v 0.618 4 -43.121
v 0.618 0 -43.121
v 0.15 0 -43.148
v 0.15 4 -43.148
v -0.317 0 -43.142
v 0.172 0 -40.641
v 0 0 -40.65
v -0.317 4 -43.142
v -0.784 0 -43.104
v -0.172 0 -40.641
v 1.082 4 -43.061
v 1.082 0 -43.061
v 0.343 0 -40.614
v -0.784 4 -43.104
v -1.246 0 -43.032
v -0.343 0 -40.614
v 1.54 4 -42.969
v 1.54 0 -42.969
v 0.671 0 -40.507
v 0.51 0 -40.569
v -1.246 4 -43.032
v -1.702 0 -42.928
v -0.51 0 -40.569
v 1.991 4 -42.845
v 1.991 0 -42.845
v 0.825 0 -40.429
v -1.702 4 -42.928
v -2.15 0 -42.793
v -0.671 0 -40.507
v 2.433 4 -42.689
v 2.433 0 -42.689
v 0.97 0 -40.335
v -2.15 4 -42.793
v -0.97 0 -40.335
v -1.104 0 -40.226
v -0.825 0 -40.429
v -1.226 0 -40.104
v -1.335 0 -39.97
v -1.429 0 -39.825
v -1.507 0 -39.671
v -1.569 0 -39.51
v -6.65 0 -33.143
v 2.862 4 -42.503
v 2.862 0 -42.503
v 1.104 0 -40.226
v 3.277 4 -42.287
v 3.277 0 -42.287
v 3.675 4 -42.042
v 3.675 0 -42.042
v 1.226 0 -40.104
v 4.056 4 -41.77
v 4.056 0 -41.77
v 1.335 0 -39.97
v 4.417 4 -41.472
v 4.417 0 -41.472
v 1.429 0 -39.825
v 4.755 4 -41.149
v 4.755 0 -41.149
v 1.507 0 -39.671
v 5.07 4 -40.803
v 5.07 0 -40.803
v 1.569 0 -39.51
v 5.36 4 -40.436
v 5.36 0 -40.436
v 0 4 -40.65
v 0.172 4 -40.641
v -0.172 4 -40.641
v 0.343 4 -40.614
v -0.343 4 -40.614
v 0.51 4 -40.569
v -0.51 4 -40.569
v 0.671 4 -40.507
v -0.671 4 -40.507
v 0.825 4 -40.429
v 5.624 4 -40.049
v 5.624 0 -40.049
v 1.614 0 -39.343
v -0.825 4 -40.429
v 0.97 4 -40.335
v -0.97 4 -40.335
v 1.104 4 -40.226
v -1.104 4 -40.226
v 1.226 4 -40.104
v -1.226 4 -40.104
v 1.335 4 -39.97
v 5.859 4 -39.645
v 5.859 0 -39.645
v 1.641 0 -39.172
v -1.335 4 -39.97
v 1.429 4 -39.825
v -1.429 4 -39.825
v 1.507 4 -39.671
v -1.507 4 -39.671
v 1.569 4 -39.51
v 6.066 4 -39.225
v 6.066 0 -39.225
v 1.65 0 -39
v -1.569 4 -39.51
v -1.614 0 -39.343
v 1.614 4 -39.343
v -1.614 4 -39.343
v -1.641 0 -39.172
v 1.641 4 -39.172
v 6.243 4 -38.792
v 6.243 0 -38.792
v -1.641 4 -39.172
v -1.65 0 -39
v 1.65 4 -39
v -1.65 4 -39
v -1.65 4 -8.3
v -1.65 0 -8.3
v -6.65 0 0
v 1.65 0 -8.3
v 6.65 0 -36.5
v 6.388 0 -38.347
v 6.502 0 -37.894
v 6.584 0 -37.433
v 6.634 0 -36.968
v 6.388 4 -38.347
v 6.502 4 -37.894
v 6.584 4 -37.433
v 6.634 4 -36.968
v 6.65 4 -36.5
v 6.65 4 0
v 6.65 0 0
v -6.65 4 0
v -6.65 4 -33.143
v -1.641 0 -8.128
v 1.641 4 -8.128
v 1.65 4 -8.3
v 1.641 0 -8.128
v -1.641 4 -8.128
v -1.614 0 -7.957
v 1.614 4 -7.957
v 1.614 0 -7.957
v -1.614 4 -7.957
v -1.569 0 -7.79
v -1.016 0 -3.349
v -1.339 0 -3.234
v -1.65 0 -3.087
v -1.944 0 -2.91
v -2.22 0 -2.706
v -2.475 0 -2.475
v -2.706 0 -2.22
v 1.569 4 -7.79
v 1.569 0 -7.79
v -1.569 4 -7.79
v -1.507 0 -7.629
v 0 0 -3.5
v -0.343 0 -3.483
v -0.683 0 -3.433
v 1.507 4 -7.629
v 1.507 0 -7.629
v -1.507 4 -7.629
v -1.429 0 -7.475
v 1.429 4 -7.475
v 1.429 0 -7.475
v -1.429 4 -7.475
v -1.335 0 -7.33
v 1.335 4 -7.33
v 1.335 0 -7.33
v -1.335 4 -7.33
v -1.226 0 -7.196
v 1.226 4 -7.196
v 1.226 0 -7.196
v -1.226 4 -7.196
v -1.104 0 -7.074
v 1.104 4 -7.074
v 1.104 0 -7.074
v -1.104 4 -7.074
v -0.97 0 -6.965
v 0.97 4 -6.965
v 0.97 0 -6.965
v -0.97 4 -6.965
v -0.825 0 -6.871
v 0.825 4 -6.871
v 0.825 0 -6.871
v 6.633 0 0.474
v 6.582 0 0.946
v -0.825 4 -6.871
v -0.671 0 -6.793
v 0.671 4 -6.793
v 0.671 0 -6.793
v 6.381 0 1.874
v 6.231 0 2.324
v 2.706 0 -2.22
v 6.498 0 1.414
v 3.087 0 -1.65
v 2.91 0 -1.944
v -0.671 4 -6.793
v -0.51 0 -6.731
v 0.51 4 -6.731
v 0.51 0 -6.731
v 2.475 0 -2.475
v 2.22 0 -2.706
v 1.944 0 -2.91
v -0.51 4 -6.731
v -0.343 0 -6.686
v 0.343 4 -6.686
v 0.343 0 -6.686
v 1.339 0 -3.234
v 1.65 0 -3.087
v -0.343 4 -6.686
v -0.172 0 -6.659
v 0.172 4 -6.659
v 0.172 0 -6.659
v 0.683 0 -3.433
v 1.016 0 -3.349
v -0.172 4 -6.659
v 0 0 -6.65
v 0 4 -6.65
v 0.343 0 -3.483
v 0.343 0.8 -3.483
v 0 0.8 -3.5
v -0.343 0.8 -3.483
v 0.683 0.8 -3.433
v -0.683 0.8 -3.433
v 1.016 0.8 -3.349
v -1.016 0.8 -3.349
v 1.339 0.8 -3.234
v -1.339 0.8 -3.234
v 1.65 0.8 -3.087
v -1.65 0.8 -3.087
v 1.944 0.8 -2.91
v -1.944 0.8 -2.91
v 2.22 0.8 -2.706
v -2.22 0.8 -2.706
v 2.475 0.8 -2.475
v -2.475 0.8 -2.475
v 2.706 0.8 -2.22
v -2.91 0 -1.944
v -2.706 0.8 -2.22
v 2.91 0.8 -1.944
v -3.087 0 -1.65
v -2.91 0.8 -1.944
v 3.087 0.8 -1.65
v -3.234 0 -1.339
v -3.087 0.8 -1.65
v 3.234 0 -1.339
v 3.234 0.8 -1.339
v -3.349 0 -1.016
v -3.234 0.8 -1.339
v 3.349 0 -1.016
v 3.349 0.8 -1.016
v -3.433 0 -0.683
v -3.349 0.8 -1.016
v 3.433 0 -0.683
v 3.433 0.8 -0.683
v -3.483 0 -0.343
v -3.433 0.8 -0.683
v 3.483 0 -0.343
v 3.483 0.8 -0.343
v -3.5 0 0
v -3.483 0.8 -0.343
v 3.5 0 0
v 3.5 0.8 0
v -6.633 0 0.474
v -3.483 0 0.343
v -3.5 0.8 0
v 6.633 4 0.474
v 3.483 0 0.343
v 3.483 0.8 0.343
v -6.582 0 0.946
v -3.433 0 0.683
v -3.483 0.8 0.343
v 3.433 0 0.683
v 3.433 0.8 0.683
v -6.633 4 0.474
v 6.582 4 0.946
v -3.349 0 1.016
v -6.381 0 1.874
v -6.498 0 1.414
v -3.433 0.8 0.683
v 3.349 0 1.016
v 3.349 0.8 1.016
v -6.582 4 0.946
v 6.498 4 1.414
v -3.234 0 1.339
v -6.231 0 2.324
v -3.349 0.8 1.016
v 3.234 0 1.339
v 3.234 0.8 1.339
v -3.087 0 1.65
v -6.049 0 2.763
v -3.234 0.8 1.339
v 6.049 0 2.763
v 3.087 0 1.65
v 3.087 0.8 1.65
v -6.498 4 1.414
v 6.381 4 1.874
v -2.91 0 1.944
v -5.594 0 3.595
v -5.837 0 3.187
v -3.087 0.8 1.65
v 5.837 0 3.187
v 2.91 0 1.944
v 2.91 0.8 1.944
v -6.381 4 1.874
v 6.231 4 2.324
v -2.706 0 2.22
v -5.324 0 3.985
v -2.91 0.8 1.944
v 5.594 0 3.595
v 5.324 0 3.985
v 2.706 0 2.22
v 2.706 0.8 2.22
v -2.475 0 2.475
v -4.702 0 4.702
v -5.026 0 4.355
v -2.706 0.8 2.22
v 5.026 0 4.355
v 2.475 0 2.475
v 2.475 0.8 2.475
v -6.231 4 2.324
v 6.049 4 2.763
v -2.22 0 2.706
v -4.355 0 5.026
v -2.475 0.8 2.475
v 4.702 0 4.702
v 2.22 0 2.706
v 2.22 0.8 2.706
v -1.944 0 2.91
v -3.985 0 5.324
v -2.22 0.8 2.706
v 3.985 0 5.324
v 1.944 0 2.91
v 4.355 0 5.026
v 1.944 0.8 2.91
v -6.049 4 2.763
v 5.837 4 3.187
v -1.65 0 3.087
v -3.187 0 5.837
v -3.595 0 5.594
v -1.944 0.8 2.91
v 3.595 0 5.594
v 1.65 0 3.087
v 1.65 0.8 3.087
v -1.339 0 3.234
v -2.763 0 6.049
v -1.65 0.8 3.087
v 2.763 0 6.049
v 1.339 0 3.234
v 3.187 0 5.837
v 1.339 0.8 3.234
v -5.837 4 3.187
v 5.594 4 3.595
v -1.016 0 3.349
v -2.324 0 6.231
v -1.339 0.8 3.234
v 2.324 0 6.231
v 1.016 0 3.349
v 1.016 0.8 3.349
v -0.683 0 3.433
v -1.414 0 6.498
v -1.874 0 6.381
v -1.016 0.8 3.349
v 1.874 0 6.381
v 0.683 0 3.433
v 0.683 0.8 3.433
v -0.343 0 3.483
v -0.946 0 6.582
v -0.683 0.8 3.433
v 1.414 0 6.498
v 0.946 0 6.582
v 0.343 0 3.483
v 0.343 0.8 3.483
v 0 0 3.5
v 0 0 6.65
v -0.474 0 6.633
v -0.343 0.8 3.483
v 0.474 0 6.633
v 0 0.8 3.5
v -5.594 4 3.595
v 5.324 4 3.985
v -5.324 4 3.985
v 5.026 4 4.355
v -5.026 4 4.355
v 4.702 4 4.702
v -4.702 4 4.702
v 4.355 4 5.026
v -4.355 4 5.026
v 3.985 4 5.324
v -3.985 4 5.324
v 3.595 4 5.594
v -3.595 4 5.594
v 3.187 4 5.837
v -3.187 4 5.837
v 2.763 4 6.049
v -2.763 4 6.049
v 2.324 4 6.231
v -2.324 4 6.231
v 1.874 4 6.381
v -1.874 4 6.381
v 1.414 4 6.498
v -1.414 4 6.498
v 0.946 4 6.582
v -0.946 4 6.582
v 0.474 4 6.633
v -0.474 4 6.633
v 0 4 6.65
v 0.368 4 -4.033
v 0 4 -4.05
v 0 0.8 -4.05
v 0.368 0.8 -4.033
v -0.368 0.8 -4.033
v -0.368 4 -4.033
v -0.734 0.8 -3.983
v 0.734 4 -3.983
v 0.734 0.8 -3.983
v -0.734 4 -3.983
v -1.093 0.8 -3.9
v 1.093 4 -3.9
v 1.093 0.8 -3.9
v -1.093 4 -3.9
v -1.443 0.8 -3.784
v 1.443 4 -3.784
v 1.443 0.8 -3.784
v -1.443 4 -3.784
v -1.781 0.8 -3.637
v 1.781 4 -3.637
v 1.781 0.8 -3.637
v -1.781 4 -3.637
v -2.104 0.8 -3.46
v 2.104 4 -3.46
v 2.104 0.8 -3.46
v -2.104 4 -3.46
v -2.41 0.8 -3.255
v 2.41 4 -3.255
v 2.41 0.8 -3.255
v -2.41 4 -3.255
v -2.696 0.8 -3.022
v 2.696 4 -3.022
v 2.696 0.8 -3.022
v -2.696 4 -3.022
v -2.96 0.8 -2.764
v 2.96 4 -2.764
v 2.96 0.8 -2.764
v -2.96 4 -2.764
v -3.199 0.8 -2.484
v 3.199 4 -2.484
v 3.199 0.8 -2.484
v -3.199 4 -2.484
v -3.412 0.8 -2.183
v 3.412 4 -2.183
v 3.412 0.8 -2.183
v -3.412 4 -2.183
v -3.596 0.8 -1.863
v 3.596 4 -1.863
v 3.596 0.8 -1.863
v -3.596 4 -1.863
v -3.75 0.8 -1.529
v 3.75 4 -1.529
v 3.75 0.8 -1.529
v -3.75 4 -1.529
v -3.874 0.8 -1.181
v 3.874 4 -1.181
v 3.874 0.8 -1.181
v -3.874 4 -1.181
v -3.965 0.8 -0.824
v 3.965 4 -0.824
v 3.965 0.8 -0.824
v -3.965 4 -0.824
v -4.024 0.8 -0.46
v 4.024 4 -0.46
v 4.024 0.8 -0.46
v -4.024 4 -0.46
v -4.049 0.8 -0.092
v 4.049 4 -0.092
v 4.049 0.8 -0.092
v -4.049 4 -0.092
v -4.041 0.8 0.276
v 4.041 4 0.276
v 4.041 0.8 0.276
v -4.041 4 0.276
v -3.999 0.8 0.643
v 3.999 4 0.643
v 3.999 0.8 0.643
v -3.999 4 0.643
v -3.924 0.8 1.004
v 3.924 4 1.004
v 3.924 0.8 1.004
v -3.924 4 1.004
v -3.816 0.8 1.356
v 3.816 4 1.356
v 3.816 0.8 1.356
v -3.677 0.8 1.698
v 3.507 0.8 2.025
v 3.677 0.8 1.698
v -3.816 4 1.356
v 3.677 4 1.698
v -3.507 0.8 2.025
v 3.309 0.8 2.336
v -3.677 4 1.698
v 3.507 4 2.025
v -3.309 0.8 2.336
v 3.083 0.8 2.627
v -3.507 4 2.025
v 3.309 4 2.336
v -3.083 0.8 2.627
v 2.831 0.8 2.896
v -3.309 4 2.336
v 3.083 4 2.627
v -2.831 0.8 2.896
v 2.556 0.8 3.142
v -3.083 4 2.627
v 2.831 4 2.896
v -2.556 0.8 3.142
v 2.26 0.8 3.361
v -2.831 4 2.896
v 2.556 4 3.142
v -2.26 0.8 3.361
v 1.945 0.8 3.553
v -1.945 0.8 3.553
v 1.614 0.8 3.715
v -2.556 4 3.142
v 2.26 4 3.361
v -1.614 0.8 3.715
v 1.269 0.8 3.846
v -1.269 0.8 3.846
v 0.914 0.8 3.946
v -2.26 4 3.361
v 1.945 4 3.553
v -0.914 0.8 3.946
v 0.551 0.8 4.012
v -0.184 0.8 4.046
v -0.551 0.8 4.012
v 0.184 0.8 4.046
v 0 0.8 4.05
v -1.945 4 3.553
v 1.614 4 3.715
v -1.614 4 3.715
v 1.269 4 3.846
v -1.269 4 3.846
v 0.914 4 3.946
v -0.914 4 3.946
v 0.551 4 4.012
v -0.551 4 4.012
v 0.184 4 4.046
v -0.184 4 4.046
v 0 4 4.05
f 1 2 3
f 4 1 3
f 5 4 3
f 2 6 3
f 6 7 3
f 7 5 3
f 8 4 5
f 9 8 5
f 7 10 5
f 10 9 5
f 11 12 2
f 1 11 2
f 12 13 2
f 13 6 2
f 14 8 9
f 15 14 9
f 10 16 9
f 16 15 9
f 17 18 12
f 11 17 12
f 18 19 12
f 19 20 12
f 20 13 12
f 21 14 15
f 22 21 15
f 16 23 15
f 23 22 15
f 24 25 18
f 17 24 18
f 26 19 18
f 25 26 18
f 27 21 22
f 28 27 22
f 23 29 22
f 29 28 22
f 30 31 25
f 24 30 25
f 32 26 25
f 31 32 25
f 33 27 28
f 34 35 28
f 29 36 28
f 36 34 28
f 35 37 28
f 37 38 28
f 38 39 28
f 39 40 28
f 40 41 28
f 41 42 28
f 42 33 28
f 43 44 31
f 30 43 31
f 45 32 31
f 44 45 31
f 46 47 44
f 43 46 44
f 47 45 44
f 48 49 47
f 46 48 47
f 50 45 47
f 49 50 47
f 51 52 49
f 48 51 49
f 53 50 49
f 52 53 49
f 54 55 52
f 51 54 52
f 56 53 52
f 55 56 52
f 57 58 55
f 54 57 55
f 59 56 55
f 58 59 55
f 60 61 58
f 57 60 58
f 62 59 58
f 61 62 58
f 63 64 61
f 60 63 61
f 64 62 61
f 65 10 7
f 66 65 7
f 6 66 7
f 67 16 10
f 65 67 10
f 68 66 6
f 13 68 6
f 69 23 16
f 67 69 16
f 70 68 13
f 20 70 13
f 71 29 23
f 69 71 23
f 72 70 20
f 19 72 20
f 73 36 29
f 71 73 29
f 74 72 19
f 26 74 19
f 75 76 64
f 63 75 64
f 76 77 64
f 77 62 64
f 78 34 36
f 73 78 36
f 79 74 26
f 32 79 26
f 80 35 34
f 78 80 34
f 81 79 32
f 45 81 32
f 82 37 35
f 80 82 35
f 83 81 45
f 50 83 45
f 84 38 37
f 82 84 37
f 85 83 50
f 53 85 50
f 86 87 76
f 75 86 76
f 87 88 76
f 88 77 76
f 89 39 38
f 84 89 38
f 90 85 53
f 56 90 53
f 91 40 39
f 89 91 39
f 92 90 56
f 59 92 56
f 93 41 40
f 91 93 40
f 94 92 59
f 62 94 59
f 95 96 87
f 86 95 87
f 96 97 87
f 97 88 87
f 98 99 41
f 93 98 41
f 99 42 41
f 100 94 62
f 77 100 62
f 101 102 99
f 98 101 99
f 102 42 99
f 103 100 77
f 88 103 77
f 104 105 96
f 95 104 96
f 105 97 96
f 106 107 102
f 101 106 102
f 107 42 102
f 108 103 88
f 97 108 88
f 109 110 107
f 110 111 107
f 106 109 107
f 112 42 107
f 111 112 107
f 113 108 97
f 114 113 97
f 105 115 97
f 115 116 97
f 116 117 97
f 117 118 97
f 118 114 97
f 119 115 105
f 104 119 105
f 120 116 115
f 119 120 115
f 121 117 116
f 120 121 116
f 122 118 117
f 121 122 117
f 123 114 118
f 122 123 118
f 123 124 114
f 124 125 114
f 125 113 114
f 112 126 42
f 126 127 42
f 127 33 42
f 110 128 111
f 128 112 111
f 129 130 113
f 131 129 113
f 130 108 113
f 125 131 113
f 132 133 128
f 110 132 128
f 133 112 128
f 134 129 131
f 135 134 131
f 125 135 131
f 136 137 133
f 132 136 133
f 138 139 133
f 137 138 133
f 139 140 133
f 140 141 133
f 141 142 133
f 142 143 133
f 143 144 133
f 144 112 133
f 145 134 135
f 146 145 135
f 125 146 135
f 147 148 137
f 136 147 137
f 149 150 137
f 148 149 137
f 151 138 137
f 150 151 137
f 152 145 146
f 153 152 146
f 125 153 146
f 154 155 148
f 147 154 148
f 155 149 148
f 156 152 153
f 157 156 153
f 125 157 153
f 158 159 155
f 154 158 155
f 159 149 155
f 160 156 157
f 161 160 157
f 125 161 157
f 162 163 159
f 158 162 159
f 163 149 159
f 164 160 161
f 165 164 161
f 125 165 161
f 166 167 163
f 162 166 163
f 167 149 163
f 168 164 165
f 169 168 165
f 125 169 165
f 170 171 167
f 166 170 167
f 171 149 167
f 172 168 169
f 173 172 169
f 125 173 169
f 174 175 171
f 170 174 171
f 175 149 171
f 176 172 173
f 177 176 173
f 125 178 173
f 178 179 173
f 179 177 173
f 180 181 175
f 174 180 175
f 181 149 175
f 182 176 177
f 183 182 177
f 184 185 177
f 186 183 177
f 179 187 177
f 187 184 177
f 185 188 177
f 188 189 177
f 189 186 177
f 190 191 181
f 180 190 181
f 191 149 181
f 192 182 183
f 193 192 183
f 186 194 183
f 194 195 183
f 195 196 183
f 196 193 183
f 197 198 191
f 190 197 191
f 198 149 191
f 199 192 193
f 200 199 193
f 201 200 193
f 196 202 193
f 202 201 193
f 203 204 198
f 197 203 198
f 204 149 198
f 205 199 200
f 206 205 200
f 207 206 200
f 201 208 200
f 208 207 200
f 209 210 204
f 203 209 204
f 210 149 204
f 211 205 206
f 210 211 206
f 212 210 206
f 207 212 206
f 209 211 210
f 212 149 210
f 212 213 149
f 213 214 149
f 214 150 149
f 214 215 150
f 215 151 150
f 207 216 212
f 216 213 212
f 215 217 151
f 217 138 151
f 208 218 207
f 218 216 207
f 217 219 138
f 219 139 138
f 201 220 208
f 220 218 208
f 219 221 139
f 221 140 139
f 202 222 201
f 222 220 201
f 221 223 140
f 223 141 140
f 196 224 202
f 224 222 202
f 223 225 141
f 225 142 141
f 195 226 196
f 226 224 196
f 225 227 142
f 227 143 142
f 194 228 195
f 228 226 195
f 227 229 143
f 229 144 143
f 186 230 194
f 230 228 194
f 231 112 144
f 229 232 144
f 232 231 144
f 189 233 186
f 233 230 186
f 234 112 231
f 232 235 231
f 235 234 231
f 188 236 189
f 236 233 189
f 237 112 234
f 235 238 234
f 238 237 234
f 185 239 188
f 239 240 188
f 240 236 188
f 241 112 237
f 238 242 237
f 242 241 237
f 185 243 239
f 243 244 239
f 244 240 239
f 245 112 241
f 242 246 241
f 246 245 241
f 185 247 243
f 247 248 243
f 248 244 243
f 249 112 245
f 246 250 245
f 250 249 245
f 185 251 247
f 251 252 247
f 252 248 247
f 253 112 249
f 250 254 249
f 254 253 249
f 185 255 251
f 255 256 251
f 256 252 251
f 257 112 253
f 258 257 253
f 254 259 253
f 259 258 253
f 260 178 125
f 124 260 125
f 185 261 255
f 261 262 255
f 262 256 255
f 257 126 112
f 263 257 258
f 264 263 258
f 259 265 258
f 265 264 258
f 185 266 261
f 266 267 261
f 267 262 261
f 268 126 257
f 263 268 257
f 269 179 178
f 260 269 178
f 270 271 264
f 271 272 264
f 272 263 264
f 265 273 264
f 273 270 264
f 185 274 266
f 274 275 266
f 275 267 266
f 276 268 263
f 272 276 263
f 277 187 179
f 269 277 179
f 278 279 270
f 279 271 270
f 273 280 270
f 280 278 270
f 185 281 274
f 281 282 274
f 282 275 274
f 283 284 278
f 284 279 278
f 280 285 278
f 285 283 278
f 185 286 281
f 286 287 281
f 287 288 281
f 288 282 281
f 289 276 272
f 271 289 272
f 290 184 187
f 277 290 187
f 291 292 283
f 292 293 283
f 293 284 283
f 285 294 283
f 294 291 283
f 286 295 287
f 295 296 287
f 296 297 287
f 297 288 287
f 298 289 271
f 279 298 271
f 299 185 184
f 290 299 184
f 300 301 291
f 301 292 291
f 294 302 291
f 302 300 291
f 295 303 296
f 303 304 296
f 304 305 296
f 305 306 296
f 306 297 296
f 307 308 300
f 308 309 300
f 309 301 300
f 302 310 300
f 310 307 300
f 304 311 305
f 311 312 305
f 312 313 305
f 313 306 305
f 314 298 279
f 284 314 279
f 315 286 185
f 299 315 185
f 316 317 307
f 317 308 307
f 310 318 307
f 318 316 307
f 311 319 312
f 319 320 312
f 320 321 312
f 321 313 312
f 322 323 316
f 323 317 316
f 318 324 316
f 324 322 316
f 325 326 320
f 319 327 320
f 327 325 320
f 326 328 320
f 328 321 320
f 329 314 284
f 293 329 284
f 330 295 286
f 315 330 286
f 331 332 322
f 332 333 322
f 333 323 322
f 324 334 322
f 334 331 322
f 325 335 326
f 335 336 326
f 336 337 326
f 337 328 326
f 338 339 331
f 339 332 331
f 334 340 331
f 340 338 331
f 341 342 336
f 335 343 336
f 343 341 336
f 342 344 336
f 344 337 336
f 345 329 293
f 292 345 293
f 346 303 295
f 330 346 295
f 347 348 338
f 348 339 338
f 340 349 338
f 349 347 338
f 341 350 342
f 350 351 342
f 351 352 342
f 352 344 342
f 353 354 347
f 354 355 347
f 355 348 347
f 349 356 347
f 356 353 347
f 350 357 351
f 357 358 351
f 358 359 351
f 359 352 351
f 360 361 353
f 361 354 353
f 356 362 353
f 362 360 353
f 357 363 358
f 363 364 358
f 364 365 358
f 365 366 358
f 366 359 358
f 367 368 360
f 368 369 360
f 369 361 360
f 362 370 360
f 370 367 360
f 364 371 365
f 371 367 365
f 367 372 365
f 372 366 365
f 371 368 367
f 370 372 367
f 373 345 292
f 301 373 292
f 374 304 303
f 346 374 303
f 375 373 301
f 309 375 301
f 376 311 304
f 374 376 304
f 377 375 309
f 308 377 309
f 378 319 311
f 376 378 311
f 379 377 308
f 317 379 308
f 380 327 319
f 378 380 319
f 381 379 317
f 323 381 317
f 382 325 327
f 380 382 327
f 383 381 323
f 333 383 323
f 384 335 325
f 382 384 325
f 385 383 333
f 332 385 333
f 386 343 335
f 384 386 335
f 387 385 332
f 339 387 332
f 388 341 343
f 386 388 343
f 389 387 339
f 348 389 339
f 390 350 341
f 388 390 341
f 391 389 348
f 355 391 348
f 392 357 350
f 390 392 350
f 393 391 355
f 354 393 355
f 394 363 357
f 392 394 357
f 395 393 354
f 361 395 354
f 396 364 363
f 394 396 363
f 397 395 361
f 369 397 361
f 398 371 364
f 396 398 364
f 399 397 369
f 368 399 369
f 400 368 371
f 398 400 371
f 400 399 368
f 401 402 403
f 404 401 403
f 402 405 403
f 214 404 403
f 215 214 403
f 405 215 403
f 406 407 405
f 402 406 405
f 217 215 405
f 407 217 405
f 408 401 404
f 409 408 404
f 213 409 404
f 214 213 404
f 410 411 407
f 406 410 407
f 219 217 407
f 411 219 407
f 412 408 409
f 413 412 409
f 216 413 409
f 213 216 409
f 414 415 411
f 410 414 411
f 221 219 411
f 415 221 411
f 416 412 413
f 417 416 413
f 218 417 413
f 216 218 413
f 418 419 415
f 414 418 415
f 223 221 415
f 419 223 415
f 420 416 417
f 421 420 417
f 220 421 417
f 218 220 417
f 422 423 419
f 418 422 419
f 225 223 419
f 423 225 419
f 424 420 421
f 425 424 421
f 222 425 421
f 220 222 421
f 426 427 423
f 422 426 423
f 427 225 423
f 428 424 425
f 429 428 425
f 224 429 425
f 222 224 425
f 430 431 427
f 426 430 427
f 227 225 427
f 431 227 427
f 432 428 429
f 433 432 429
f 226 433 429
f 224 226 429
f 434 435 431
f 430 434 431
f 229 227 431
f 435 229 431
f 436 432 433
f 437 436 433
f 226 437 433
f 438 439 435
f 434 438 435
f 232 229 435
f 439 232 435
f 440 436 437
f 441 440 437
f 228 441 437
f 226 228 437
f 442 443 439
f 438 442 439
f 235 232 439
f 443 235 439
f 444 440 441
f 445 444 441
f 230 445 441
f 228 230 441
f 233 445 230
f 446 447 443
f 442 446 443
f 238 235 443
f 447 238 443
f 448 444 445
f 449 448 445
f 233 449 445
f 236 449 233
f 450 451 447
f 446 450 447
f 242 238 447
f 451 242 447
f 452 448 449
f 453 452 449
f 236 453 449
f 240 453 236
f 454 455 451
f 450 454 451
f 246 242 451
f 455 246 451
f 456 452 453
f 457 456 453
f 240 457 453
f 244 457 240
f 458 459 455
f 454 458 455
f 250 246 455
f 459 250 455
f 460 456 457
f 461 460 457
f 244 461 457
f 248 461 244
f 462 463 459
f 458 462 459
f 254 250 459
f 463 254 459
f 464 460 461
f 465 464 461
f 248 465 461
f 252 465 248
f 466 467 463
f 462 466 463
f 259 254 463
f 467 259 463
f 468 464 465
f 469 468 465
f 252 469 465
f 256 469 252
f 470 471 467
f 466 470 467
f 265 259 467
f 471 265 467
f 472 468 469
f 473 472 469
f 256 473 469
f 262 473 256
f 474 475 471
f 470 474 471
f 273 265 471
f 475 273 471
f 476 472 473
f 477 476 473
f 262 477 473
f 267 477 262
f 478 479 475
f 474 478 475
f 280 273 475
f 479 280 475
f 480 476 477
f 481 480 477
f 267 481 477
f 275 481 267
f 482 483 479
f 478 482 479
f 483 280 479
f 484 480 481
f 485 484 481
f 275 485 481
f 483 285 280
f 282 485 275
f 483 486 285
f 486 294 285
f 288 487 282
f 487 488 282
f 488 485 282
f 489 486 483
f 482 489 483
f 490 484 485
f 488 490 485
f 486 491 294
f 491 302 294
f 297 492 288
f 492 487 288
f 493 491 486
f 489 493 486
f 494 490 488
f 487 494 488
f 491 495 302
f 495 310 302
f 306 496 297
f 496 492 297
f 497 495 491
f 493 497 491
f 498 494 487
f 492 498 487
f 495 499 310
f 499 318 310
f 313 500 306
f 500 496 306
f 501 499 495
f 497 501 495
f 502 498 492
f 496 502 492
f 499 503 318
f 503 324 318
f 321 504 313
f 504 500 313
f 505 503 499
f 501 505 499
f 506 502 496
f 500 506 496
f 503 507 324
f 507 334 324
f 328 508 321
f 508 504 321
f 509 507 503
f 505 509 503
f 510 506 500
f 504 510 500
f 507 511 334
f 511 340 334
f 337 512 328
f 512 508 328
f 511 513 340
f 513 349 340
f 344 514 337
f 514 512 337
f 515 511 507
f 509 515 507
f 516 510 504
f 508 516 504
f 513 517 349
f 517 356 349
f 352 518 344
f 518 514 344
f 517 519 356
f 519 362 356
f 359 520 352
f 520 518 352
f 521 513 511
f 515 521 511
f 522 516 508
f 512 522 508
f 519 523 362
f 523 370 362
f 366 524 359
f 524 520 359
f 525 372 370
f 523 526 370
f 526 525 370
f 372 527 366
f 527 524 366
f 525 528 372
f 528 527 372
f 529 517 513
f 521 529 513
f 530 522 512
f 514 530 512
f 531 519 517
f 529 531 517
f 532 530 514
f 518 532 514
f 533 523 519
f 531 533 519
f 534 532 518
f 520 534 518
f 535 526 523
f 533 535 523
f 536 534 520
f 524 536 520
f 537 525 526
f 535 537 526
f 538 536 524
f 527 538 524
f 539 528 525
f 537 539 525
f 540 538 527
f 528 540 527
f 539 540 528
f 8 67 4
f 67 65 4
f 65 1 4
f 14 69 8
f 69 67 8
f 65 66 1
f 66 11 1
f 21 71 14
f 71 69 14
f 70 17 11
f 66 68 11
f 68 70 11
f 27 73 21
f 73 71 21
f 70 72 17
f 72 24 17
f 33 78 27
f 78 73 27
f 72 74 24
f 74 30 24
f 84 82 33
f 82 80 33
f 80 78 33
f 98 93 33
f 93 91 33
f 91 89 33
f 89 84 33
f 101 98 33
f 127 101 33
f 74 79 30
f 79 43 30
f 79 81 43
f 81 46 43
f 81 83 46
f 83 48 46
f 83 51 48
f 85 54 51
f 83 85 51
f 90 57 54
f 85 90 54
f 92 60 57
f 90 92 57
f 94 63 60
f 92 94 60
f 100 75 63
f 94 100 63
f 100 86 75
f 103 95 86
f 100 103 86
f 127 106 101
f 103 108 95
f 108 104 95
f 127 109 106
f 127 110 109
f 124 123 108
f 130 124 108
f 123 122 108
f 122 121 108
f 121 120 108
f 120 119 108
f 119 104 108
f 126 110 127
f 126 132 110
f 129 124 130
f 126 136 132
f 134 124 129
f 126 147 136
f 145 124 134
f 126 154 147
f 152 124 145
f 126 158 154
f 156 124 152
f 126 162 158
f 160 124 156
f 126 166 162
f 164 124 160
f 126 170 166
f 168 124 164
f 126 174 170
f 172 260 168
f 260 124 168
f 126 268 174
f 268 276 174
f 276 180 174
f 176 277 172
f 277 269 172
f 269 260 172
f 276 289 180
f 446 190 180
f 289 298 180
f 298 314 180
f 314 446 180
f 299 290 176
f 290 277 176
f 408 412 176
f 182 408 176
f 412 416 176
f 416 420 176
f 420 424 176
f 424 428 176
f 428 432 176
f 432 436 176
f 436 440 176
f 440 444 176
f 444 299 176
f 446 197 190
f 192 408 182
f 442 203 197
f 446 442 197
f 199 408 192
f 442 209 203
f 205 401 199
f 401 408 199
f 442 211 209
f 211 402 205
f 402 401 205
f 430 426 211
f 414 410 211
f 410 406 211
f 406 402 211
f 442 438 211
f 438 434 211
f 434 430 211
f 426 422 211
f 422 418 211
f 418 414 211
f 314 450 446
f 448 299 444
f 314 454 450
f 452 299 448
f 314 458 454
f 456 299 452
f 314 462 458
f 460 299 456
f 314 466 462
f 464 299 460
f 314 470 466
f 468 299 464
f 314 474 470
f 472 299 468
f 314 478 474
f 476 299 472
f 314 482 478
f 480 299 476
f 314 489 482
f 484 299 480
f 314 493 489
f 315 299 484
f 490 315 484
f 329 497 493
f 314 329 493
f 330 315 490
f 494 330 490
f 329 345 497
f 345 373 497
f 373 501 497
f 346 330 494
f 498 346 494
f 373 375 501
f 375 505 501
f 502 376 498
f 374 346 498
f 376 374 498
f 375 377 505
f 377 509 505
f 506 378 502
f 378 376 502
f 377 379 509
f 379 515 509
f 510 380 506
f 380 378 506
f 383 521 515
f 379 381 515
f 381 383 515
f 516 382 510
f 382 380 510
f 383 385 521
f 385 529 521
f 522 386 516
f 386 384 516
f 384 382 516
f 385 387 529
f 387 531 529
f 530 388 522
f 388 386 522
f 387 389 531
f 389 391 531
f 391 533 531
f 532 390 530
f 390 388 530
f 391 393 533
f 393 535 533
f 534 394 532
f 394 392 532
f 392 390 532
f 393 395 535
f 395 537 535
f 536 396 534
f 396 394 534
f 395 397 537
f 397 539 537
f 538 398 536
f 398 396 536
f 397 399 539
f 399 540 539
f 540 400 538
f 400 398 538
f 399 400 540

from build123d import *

# Parameters (mm, degrees)
SKETCH1_R           = 6.65
SKETCH1_R_2         = 4.05
BOSS_EXTRUDE1_DEPTH = 4
SKETCH2_R           = 4.05
BOSS_EXTRUDE2_DEPTH = 0.8
SKETCH3_R           = 3.5
CUT_EXTRUDE1_DEPTH  = 1.8
CUT_EXTRUDE2_DEPTH  = 5


with BuildPart() as part:
    # Sketch1 → Boss-Extrude1 (new body)
    with BuildSketch(Plane(origin=(0, 0, 0), x_dir=(1, 0, 0), z_dir=(0, 1, 0))):
        with BuildLine():
            Line((-6.65, 36.5), (-6.65, 0))
            ThreePointArc((-6.65, 0), (-4.702260096, 4.702260094), (-2e-09, 6.65))
            ThreePointArc((-2e-09, 6.65), (4.702260094, 4.702260096), (6.65, 0))
            Line((6.65, 0), (6.65, 36.5))
            ThreePointArc((6.65, 36.5), (0, 43.15), (-6.65, 36.5))
        make_face()
        with BuildLine():
            ThreePointArc((1.65, 8.3), (1.166726188, 7.13327381), (-2e-09, 6.65))
            ThreePointArc((-2e-09, 6.65), (-1.16672619, 7.133273812), (-1.65, 8.3))
            Line((-1.65, 8.3), (-1.65, 39))
            ThreePointArc((-1.65, 39), (0, 40.65), (1.65, 39))
            Line((1.65, 39), (1.65, 8.3))
        make_face(mode=Mode.SUBTRACT)
        Circle(SKETCH1_R)
        Circle(SKETCH1_R_2, mode=Mode.SUBTRACT)
    extrude(amount=BOSS_EXTRUDE1_DEPTH)

    # Sketch2 → Boss-Extrude2 (add)
    with BuildSketch(Plane(origin=(0, 0, 0), x_dir=(1, 0, 0), z_dir=(0, 1, 0))):
        Circle(SKETCH2_R)
    extrude(amount=BOSS_EXTRUDE2_DEPTH)

    # Sketch3 → Cut-Extrude1 (cut, through all)
    with BuildSketch(Plane(origin=(0, 0.8, 0), x_dir=(1, 0, 0), z_dir=(0, 1, 0))):
        Circle(SKETCH3_R)
    extrude(amount=-CUT_EXTRUDE1_DEPTH, mode=Mode.SUBTRACT)

    # Sketch4 → Cut-Extrude2 (cut, through all)
    with BuildSketch(Plane.XZ):
        with BuildLine():
            Line((-6.65, -33.142571947), (-2.15, -42.792853089))
            ThreePointArc((-2.15, -42.792853089), (-5.409251335, -40.368139087), (-6.65, -36.5))
            Line((-6.65, -36.5), (-6.65, -33.142571947))
        make_face()
    extrude(amount=-CUT_EXTRUDE2_DEPTH, mode=Mode.SUBTRACT)


solid = part.part
